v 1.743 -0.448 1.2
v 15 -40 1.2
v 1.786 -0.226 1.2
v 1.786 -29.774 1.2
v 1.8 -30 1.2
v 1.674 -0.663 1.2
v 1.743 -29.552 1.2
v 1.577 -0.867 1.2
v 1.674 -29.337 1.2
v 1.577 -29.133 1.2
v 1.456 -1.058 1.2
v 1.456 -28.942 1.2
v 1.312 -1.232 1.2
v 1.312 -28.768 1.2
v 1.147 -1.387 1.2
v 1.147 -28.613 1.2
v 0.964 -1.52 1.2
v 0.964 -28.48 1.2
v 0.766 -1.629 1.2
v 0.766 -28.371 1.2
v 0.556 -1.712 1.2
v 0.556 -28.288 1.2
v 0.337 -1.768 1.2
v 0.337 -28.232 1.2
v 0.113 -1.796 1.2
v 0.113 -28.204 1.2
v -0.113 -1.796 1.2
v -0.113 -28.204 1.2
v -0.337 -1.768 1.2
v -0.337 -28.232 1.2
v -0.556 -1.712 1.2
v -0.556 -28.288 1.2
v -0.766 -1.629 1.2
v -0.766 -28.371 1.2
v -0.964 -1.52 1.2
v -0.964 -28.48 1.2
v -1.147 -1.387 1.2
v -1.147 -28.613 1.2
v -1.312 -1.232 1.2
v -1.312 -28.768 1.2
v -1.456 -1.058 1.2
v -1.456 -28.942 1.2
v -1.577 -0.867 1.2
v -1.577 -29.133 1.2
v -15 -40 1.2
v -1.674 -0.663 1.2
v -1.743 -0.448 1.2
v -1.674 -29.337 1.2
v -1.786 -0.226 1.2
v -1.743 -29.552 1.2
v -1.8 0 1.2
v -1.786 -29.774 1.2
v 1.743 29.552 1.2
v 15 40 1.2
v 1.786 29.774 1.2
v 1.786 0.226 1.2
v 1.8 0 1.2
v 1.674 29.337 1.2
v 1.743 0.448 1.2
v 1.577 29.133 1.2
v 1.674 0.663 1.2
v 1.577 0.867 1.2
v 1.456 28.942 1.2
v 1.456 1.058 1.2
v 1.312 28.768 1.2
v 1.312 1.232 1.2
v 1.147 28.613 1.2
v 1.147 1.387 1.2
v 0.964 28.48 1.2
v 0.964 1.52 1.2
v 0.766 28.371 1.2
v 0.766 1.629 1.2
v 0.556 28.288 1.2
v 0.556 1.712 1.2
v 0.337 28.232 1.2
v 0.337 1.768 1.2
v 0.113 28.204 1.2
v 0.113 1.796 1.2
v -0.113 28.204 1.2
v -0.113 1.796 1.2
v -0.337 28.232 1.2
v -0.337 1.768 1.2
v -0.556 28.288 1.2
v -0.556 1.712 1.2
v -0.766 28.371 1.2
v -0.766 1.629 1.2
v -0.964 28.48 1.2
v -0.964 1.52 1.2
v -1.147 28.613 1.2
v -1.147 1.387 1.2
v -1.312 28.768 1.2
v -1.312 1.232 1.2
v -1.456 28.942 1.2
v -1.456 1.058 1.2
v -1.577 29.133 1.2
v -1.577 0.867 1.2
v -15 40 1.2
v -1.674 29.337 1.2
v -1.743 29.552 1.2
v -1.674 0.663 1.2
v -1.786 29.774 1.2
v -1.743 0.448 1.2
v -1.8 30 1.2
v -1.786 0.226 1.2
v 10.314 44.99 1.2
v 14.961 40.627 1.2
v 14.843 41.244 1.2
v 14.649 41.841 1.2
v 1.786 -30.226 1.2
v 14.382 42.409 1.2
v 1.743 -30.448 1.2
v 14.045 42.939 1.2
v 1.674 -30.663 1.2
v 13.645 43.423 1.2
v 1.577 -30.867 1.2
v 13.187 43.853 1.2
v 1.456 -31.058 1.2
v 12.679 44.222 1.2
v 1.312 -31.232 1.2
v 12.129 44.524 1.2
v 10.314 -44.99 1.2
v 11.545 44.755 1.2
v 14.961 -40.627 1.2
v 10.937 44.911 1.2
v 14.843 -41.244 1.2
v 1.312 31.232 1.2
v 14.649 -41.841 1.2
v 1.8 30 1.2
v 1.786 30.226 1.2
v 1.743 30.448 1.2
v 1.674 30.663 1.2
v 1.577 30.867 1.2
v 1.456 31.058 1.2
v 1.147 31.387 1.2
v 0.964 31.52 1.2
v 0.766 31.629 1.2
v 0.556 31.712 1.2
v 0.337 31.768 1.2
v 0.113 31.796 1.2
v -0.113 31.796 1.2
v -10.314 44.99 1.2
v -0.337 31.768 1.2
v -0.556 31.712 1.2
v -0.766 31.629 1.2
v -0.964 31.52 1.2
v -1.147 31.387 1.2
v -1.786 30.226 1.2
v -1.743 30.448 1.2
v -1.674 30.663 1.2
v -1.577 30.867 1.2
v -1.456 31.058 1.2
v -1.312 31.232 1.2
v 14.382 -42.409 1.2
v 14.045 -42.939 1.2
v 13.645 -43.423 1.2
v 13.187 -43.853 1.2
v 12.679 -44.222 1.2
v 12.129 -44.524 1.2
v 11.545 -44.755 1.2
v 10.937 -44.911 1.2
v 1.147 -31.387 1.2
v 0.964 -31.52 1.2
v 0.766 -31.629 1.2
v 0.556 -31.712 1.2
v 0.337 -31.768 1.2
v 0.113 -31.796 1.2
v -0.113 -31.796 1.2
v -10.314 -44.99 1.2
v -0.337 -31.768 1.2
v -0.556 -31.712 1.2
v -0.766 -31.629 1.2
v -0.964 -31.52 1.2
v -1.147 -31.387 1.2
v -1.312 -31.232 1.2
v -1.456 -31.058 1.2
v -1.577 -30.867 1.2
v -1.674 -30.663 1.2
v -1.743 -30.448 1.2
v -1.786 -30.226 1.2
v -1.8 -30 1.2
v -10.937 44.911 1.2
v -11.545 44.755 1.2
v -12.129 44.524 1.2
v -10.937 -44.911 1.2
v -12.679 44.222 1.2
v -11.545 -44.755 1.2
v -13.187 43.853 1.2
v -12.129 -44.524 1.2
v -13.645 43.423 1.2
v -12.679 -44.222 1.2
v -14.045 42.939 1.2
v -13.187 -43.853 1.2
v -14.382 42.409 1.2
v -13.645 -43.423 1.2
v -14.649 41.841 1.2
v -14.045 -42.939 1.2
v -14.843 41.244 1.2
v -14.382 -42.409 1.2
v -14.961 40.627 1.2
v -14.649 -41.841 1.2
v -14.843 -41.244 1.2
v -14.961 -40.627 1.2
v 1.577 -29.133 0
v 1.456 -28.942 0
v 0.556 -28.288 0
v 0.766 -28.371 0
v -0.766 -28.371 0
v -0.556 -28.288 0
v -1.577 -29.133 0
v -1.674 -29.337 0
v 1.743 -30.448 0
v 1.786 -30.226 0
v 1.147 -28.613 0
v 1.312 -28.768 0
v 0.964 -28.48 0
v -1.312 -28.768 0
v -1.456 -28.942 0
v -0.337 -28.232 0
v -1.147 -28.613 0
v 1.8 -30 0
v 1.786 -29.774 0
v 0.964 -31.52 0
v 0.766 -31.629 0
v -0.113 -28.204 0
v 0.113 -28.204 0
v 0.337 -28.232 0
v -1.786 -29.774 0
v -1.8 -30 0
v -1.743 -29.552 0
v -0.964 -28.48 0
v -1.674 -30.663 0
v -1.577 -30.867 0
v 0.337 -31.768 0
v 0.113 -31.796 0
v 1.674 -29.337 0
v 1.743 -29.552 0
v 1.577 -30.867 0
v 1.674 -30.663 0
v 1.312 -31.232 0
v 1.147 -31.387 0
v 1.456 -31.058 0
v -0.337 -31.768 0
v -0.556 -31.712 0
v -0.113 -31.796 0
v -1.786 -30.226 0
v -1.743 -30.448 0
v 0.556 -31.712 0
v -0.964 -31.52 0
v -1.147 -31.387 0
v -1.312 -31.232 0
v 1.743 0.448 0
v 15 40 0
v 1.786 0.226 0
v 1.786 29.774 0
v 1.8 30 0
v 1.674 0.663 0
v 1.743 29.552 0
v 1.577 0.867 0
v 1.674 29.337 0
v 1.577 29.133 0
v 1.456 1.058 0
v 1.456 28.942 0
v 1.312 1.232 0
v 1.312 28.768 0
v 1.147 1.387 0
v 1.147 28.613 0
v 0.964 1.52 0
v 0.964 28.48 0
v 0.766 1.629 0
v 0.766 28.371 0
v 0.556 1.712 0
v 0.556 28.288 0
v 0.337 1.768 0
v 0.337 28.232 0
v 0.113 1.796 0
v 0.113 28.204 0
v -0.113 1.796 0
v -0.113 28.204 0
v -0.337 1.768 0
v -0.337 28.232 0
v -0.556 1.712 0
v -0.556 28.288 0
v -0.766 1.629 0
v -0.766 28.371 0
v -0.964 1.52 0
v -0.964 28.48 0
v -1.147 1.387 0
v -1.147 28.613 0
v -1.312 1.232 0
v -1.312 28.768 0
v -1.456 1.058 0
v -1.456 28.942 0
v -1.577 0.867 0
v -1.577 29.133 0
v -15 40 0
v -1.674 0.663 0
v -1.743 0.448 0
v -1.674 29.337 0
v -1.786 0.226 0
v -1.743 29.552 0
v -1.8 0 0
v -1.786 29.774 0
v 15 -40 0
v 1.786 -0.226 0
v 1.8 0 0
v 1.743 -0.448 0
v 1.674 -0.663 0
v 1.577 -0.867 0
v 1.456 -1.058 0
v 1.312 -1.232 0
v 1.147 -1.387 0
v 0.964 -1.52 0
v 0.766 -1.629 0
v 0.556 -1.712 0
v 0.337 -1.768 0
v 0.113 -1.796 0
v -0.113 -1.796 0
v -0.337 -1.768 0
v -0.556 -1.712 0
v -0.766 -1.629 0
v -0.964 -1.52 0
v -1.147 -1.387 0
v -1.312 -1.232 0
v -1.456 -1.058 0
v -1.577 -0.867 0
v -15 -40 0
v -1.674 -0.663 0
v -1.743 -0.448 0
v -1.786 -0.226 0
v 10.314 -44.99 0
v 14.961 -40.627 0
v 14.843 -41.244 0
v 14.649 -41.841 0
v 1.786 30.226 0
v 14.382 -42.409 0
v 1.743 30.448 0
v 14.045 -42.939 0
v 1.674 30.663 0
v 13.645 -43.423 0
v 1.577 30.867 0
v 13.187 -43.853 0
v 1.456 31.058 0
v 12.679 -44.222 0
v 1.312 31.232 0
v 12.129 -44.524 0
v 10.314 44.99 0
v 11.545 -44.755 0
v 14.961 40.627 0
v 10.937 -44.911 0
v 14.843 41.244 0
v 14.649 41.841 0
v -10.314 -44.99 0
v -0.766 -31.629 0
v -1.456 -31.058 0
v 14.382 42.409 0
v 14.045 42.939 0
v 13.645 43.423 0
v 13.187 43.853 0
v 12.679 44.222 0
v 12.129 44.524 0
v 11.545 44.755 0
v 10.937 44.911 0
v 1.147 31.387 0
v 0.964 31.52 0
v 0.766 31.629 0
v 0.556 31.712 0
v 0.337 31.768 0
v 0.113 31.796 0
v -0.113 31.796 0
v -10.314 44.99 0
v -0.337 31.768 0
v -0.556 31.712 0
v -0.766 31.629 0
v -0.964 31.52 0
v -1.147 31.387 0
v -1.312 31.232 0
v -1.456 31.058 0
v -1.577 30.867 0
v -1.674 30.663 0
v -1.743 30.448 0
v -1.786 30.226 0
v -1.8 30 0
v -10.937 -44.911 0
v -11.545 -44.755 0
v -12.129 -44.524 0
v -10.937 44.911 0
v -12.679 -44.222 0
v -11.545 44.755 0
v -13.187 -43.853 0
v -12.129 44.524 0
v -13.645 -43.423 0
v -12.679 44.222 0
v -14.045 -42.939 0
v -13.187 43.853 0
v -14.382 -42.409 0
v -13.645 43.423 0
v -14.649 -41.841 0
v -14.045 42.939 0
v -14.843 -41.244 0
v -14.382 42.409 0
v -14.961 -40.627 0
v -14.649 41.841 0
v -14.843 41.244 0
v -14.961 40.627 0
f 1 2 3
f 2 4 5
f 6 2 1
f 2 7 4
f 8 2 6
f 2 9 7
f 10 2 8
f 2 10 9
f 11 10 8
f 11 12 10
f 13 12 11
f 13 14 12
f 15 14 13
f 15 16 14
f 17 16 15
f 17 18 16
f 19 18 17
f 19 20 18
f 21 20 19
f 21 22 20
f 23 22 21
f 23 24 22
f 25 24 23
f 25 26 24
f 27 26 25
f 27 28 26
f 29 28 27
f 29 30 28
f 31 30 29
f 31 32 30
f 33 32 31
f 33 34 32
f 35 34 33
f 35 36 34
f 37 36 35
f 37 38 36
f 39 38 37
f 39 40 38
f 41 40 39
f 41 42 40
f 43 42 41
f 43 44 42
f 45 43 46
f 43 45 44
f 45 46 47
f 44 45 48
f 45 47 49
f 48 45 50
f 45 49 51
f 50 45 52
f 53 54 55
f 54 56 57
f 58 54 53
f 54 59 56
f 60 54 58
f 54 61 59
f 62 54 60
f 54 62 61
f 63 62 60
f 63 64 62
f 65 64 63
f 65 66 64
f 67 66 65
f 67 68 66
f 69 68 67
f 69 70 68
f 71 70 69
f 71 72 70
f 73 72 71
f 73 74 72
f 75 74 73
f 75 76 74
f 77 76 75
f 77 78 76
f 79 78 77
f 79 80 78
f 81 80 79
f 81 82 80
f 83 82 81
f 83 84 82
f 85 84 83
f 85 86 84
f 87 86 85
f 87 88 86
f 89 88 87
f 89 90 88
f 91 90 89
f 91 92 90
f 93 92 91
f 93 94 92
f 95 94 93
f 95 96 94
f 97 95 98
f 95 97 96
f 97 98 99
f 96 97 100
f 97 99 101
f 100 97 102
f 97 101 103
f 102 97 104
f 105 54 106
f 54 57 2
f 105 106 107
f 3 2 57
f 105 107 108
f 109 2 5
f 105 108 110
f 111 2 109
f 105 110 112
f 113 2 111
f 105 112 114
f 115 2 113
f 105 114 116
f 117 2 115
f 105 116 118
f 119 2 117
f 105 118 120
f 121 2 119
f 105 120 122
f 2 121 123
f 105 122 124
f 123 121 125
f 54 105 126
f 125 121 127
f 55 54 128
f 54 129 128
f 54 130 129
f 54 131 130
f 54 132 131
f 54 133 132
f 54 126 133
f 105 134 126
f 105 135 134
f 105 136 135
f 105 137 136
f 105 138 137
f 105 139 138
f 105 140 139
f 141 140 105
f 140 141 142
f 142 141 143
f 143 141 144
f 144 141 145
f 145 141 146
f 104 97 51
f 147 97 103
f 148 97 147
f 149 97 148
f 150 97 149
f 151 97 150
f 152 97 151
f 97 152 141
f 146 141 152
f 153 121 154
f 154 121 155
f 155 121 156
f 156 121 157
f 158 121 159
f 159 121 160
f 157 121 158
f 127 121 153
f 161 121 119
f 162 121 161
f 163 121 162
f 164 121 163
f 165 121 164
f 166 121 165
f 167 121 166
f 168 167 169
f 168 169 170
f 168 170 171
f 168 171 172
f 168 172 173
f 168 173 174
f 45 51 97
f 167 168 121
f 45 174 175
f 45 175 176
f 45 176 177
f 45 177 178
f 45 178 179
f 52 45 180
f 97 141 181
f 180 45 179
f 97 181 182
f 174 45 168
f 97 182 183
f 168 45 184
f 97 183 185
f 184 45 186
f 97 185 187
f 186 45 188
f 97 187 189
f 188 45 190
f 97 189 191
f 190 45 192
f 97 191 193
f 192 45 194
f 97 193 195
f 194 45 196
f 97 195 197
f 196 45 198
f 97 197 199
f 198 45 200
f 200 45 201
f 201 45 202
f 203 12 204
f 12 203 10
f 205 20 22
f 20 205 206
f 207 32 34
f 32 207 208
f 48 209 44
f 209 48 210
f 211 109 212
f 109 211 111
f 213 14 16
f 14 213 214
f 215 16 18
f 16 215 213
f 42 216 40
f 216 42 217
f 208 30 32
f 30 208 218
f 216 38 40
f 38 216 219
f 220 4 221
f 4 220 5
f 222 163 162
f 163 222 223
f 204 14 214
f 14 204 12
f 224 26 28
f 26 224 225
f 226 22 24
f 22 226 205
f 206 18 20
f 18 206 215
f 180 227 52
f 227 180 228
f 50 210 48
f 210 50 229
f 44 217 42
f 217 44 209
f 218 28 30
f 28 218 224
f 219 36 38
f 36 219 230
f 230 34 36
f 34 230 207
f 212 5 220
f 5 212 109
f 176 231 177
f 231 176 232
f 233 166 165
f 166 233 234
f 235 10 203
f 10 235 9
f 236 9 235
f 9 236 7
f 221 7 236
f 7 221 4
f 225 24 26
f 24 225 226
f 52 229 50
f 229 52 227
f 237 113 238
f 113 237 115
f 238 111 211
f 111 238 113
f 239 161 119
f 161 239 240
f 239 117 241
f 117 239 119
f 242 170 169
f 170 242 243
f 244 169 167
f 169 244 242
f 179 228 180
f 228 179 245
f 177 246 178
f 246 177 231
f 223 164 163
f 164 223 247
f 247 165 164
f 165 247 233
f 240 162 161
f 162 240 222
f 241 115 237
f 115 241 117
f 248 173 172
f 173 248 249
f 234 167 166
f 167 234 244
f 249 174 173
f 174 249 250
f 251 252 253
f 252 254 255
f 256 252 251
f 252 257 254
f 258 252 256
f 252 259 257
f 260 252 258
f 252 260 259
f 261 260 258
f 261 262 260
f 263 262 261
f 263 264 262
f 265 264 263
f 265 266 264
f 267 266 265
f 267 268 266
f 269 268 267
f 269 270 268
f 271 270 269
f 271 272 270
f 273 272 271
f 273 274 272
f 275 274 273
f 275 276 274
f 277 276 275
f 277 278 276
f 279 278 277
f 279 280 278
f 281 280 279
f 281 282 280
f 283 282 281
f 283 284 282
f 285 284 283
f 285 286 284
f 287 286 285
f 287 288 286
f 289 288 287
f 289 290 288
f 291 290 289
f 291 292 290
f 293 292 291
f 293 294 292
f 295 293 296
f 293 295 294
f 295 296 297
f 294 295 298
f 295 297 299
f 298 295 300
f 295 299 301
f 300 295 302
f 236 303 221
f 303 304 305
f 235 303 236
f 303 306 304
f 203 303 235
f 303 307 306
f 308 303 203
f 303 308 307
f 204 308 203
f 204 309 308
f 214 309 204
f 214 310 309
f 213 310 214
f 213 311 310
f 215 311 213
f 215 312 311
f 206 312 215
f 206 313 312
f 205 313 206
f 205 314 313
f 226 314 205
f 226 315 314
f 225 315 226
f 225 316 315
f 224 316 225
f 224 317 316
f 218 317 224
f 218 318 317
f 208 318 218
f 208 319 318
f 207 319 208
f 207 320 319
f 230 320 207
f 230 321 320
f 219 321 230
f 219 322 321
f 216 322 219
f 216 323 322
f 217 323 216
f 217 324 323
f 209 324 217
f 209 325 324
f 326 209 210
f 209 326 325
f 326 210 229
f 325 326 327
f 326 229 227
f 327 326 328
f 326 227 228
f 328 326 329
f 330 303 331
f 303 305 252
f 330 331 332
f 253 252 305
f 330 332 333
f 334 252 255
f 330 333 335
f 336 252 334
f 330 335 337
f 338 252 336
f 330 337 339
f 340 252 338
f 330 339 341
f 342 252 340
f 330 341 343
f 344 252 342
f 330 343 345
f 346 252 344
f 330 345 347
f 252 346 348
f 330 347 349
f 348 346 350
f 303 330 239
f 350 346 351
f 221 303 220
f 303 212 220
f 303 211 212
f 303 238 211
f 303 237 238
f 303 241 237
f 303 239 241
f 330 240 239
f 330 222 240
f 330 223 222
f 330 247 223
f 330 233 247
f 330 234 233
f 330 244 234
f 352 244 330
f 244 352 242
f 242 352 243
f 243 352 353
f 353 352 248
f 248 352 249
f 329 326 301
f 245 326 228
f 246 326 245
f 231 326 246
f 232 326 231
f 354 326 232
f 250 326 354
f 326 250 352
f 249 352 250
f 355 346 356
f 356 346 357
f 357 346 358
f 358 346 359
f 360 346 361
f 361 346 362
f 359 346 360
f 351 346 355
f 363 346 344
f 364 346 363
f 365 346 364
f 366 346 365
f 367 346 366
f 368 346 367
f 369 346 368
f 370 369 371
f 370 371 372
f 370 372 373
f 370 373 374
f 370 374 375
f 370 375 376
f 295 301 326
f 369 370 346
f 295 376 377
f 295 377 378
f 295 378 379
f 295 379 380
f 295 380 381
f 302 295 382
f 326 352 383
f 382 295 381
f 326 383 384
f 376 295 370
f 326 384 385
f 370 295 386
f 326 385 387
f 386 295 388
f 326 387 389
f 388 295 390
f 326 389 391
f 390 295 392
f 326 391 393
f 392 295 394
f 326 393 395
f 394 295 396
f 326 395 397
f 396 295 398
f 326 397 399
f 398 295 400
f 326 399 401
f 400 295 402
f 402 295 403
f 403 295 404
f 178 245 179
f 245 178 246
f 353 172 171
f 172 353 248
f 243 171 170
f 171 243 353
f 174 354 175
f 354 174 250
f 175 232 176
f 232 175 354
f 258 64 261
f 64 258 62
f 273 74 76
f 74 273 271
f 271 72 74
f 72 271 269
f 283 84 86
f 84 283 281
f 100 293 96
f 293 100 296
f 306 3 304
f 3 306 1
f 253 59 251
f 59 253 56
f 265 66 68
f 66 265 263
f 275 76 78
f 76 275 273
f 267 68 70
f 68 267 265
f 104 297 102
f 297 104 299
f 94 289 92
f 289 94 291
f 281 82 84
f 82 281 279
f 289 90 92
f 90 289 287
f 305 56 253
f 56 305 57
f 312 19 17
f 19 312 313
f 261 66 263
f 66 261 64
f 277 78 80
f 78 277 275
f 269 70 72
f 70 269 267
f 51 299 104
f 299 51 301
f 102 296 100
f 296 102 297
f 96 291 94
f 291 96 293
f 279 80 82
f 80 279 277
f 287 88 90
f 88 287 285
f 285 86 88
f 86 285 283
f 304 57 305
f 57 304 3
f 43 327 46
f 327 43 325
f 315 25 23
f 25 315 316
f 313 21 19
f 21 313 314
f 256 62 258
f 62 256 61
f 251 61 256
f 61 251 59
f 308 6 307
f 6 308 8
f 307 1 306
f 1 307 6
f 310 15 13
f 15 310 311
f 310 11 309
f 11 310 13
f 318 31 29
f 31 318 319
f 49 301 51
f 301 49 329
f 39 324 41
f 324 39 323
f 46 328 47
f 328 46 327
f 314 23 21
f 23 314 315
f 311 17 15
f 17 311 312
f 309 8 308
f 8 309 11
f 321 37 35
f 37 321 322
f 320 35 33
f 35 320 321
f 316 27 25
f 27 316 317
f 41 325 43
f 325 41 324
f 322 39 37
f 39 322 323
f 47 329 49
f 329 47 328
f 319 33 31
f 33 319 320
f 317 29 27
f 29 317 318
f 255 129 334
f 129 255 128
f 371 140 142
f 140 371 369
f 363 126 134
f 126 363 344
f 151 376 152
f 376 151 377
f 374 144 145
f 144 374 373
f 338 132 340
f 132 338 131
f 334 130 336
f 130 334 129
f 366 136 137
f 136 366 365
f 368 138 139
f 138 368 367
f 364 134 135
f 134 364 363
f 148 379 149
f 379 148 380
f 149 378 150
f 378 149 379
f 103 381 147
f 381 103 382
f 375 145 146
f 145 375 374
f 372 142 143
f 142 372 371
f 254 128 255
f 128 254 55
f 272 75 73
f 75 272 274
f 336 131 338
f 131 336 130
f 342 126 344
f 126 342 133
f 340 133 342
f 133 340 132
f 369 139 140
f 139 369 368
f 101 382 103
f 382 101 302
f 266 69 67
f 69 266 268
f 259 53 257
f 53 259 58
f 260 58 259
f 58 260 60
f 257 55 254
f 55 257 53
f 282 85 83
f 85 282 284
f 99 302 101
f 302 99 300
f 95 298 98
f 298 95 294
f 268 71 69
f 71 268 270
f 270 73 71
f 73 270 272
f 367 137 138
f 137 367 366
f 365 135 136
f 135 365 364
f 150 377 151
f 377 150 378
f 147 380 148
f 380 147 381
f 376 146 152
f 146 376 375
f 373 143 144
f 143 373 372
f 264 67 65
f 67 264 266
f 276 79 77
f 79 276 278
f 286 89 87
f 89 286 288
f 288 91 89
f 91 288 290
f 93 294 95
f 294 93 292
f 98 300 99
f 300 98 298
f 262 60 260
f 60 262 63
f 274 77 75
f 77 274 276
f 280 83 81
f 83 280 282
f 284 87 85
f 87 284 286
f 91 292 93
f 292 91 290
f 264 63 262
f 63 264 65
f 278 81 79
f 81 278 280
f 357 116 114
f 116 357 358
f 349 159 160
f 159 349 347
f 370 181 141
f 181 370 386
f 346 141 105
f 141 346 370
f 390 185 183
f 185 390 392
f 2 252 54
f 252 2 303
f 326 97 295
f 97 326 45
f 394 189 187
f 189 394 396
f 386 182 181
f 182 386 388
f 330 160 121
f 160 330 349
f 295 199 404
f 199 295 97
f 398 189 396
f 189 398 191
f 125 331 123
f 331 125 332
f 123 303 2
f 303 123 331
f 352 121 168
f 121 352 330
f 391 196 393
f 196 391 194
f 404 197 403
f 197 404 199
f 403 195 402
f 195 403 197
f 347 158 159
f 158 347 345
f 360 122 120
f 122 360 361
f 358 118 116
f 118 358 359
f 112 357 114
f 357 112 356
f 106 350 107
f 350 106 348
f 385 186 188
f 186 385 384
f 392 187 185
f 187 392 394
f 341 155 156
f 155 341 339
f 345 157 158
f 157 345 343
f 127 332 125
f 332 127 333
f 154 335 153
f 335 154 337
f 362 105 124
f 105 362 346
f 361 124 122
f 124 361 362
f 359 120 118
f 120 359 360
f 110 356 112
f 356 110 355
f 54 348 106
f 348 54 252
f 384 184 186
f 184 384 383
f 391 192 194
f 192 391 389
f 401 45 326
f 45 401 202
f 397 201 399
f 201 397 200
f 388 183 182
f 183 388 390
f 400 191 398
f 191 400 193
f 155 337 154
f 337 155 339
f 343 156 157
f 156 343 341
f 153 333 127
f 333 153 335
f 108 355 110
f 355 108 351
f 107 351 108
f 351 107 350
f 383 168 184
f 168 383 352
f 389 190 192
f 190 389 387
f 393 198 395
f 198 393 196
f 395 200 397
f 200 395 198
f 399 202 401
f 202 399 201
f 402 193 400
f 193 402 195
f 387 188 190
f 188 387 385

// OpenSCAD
$fn = 50;


difference() {
	union() {
		hull() {
			translate(v = [-10.0000000000, 40.0000000000, 0]) {
				cylinder(h = 24, r = 5);
			}
			translate(v = [10.0000000000, 40.0000000000, 0]) {
				cylinder(h = 24, r = 5);
			}
			translate(v = [-10.0000000000, -40.0000000000, 0]) {
				cylinder(h = 24, r = 5);
			}
			translate(v = [10.0000000000, -40.0000000000, 0]) {
				cylinder(h = 24, r = 5);
			}
		}
	}
	union() {
		translate(v = [0, 0, 1.2000000000]) {
			hull() {
				translate(v = [-10.0000000000, 40.0000000000, 0]) {
					cylinder(h = 22.8000000000, r = 3.8000000000);
				}
				translate(v = [10.0000000000, 40.0000000000, 0]) {
					cylinder(h = 22.8000000000, r = 3.8000000000);
				}
				translate(v = [-10.0000000000, -40.0000000000, 0]) {
					cylinder(h = 22.8000000000, r = 3.8000000000);
				}
				translate(v = [10.0000000000, -40.0000000000, 0]) {
					cylinder(h = 22.8000000000, r = 3.8000000000);
				}
			}
		}
		#translate(v = [0.0000000000, -30.0000000000, 0]) {
			cylinder(h = 1.2000000000, r = 1.8000000000);
		}
		#cylinder(h = 1.2000000000, r = 1.8000000000);
		#translate(v = [0.0000000000, 30.0000000000, 0]) {
			cylinder(h = 1.2000000000, r = 1.8000000000);
		}
		translate(v = [-250.0000000000, -250.0000000000, 1.2000000000]) {
			cube(size = [500, 500, 500]);
		}
		translate(v = [-250.0000000000, -250.0000000000, 1.2000000000]) {
			cube(size = [500, 500, 500]);
		}
		translate(v = [-250.0000000000, -250.0000000000, 1.2000000000]) {
			cube(size = [500, 500, 500]);
		}
	}
}
